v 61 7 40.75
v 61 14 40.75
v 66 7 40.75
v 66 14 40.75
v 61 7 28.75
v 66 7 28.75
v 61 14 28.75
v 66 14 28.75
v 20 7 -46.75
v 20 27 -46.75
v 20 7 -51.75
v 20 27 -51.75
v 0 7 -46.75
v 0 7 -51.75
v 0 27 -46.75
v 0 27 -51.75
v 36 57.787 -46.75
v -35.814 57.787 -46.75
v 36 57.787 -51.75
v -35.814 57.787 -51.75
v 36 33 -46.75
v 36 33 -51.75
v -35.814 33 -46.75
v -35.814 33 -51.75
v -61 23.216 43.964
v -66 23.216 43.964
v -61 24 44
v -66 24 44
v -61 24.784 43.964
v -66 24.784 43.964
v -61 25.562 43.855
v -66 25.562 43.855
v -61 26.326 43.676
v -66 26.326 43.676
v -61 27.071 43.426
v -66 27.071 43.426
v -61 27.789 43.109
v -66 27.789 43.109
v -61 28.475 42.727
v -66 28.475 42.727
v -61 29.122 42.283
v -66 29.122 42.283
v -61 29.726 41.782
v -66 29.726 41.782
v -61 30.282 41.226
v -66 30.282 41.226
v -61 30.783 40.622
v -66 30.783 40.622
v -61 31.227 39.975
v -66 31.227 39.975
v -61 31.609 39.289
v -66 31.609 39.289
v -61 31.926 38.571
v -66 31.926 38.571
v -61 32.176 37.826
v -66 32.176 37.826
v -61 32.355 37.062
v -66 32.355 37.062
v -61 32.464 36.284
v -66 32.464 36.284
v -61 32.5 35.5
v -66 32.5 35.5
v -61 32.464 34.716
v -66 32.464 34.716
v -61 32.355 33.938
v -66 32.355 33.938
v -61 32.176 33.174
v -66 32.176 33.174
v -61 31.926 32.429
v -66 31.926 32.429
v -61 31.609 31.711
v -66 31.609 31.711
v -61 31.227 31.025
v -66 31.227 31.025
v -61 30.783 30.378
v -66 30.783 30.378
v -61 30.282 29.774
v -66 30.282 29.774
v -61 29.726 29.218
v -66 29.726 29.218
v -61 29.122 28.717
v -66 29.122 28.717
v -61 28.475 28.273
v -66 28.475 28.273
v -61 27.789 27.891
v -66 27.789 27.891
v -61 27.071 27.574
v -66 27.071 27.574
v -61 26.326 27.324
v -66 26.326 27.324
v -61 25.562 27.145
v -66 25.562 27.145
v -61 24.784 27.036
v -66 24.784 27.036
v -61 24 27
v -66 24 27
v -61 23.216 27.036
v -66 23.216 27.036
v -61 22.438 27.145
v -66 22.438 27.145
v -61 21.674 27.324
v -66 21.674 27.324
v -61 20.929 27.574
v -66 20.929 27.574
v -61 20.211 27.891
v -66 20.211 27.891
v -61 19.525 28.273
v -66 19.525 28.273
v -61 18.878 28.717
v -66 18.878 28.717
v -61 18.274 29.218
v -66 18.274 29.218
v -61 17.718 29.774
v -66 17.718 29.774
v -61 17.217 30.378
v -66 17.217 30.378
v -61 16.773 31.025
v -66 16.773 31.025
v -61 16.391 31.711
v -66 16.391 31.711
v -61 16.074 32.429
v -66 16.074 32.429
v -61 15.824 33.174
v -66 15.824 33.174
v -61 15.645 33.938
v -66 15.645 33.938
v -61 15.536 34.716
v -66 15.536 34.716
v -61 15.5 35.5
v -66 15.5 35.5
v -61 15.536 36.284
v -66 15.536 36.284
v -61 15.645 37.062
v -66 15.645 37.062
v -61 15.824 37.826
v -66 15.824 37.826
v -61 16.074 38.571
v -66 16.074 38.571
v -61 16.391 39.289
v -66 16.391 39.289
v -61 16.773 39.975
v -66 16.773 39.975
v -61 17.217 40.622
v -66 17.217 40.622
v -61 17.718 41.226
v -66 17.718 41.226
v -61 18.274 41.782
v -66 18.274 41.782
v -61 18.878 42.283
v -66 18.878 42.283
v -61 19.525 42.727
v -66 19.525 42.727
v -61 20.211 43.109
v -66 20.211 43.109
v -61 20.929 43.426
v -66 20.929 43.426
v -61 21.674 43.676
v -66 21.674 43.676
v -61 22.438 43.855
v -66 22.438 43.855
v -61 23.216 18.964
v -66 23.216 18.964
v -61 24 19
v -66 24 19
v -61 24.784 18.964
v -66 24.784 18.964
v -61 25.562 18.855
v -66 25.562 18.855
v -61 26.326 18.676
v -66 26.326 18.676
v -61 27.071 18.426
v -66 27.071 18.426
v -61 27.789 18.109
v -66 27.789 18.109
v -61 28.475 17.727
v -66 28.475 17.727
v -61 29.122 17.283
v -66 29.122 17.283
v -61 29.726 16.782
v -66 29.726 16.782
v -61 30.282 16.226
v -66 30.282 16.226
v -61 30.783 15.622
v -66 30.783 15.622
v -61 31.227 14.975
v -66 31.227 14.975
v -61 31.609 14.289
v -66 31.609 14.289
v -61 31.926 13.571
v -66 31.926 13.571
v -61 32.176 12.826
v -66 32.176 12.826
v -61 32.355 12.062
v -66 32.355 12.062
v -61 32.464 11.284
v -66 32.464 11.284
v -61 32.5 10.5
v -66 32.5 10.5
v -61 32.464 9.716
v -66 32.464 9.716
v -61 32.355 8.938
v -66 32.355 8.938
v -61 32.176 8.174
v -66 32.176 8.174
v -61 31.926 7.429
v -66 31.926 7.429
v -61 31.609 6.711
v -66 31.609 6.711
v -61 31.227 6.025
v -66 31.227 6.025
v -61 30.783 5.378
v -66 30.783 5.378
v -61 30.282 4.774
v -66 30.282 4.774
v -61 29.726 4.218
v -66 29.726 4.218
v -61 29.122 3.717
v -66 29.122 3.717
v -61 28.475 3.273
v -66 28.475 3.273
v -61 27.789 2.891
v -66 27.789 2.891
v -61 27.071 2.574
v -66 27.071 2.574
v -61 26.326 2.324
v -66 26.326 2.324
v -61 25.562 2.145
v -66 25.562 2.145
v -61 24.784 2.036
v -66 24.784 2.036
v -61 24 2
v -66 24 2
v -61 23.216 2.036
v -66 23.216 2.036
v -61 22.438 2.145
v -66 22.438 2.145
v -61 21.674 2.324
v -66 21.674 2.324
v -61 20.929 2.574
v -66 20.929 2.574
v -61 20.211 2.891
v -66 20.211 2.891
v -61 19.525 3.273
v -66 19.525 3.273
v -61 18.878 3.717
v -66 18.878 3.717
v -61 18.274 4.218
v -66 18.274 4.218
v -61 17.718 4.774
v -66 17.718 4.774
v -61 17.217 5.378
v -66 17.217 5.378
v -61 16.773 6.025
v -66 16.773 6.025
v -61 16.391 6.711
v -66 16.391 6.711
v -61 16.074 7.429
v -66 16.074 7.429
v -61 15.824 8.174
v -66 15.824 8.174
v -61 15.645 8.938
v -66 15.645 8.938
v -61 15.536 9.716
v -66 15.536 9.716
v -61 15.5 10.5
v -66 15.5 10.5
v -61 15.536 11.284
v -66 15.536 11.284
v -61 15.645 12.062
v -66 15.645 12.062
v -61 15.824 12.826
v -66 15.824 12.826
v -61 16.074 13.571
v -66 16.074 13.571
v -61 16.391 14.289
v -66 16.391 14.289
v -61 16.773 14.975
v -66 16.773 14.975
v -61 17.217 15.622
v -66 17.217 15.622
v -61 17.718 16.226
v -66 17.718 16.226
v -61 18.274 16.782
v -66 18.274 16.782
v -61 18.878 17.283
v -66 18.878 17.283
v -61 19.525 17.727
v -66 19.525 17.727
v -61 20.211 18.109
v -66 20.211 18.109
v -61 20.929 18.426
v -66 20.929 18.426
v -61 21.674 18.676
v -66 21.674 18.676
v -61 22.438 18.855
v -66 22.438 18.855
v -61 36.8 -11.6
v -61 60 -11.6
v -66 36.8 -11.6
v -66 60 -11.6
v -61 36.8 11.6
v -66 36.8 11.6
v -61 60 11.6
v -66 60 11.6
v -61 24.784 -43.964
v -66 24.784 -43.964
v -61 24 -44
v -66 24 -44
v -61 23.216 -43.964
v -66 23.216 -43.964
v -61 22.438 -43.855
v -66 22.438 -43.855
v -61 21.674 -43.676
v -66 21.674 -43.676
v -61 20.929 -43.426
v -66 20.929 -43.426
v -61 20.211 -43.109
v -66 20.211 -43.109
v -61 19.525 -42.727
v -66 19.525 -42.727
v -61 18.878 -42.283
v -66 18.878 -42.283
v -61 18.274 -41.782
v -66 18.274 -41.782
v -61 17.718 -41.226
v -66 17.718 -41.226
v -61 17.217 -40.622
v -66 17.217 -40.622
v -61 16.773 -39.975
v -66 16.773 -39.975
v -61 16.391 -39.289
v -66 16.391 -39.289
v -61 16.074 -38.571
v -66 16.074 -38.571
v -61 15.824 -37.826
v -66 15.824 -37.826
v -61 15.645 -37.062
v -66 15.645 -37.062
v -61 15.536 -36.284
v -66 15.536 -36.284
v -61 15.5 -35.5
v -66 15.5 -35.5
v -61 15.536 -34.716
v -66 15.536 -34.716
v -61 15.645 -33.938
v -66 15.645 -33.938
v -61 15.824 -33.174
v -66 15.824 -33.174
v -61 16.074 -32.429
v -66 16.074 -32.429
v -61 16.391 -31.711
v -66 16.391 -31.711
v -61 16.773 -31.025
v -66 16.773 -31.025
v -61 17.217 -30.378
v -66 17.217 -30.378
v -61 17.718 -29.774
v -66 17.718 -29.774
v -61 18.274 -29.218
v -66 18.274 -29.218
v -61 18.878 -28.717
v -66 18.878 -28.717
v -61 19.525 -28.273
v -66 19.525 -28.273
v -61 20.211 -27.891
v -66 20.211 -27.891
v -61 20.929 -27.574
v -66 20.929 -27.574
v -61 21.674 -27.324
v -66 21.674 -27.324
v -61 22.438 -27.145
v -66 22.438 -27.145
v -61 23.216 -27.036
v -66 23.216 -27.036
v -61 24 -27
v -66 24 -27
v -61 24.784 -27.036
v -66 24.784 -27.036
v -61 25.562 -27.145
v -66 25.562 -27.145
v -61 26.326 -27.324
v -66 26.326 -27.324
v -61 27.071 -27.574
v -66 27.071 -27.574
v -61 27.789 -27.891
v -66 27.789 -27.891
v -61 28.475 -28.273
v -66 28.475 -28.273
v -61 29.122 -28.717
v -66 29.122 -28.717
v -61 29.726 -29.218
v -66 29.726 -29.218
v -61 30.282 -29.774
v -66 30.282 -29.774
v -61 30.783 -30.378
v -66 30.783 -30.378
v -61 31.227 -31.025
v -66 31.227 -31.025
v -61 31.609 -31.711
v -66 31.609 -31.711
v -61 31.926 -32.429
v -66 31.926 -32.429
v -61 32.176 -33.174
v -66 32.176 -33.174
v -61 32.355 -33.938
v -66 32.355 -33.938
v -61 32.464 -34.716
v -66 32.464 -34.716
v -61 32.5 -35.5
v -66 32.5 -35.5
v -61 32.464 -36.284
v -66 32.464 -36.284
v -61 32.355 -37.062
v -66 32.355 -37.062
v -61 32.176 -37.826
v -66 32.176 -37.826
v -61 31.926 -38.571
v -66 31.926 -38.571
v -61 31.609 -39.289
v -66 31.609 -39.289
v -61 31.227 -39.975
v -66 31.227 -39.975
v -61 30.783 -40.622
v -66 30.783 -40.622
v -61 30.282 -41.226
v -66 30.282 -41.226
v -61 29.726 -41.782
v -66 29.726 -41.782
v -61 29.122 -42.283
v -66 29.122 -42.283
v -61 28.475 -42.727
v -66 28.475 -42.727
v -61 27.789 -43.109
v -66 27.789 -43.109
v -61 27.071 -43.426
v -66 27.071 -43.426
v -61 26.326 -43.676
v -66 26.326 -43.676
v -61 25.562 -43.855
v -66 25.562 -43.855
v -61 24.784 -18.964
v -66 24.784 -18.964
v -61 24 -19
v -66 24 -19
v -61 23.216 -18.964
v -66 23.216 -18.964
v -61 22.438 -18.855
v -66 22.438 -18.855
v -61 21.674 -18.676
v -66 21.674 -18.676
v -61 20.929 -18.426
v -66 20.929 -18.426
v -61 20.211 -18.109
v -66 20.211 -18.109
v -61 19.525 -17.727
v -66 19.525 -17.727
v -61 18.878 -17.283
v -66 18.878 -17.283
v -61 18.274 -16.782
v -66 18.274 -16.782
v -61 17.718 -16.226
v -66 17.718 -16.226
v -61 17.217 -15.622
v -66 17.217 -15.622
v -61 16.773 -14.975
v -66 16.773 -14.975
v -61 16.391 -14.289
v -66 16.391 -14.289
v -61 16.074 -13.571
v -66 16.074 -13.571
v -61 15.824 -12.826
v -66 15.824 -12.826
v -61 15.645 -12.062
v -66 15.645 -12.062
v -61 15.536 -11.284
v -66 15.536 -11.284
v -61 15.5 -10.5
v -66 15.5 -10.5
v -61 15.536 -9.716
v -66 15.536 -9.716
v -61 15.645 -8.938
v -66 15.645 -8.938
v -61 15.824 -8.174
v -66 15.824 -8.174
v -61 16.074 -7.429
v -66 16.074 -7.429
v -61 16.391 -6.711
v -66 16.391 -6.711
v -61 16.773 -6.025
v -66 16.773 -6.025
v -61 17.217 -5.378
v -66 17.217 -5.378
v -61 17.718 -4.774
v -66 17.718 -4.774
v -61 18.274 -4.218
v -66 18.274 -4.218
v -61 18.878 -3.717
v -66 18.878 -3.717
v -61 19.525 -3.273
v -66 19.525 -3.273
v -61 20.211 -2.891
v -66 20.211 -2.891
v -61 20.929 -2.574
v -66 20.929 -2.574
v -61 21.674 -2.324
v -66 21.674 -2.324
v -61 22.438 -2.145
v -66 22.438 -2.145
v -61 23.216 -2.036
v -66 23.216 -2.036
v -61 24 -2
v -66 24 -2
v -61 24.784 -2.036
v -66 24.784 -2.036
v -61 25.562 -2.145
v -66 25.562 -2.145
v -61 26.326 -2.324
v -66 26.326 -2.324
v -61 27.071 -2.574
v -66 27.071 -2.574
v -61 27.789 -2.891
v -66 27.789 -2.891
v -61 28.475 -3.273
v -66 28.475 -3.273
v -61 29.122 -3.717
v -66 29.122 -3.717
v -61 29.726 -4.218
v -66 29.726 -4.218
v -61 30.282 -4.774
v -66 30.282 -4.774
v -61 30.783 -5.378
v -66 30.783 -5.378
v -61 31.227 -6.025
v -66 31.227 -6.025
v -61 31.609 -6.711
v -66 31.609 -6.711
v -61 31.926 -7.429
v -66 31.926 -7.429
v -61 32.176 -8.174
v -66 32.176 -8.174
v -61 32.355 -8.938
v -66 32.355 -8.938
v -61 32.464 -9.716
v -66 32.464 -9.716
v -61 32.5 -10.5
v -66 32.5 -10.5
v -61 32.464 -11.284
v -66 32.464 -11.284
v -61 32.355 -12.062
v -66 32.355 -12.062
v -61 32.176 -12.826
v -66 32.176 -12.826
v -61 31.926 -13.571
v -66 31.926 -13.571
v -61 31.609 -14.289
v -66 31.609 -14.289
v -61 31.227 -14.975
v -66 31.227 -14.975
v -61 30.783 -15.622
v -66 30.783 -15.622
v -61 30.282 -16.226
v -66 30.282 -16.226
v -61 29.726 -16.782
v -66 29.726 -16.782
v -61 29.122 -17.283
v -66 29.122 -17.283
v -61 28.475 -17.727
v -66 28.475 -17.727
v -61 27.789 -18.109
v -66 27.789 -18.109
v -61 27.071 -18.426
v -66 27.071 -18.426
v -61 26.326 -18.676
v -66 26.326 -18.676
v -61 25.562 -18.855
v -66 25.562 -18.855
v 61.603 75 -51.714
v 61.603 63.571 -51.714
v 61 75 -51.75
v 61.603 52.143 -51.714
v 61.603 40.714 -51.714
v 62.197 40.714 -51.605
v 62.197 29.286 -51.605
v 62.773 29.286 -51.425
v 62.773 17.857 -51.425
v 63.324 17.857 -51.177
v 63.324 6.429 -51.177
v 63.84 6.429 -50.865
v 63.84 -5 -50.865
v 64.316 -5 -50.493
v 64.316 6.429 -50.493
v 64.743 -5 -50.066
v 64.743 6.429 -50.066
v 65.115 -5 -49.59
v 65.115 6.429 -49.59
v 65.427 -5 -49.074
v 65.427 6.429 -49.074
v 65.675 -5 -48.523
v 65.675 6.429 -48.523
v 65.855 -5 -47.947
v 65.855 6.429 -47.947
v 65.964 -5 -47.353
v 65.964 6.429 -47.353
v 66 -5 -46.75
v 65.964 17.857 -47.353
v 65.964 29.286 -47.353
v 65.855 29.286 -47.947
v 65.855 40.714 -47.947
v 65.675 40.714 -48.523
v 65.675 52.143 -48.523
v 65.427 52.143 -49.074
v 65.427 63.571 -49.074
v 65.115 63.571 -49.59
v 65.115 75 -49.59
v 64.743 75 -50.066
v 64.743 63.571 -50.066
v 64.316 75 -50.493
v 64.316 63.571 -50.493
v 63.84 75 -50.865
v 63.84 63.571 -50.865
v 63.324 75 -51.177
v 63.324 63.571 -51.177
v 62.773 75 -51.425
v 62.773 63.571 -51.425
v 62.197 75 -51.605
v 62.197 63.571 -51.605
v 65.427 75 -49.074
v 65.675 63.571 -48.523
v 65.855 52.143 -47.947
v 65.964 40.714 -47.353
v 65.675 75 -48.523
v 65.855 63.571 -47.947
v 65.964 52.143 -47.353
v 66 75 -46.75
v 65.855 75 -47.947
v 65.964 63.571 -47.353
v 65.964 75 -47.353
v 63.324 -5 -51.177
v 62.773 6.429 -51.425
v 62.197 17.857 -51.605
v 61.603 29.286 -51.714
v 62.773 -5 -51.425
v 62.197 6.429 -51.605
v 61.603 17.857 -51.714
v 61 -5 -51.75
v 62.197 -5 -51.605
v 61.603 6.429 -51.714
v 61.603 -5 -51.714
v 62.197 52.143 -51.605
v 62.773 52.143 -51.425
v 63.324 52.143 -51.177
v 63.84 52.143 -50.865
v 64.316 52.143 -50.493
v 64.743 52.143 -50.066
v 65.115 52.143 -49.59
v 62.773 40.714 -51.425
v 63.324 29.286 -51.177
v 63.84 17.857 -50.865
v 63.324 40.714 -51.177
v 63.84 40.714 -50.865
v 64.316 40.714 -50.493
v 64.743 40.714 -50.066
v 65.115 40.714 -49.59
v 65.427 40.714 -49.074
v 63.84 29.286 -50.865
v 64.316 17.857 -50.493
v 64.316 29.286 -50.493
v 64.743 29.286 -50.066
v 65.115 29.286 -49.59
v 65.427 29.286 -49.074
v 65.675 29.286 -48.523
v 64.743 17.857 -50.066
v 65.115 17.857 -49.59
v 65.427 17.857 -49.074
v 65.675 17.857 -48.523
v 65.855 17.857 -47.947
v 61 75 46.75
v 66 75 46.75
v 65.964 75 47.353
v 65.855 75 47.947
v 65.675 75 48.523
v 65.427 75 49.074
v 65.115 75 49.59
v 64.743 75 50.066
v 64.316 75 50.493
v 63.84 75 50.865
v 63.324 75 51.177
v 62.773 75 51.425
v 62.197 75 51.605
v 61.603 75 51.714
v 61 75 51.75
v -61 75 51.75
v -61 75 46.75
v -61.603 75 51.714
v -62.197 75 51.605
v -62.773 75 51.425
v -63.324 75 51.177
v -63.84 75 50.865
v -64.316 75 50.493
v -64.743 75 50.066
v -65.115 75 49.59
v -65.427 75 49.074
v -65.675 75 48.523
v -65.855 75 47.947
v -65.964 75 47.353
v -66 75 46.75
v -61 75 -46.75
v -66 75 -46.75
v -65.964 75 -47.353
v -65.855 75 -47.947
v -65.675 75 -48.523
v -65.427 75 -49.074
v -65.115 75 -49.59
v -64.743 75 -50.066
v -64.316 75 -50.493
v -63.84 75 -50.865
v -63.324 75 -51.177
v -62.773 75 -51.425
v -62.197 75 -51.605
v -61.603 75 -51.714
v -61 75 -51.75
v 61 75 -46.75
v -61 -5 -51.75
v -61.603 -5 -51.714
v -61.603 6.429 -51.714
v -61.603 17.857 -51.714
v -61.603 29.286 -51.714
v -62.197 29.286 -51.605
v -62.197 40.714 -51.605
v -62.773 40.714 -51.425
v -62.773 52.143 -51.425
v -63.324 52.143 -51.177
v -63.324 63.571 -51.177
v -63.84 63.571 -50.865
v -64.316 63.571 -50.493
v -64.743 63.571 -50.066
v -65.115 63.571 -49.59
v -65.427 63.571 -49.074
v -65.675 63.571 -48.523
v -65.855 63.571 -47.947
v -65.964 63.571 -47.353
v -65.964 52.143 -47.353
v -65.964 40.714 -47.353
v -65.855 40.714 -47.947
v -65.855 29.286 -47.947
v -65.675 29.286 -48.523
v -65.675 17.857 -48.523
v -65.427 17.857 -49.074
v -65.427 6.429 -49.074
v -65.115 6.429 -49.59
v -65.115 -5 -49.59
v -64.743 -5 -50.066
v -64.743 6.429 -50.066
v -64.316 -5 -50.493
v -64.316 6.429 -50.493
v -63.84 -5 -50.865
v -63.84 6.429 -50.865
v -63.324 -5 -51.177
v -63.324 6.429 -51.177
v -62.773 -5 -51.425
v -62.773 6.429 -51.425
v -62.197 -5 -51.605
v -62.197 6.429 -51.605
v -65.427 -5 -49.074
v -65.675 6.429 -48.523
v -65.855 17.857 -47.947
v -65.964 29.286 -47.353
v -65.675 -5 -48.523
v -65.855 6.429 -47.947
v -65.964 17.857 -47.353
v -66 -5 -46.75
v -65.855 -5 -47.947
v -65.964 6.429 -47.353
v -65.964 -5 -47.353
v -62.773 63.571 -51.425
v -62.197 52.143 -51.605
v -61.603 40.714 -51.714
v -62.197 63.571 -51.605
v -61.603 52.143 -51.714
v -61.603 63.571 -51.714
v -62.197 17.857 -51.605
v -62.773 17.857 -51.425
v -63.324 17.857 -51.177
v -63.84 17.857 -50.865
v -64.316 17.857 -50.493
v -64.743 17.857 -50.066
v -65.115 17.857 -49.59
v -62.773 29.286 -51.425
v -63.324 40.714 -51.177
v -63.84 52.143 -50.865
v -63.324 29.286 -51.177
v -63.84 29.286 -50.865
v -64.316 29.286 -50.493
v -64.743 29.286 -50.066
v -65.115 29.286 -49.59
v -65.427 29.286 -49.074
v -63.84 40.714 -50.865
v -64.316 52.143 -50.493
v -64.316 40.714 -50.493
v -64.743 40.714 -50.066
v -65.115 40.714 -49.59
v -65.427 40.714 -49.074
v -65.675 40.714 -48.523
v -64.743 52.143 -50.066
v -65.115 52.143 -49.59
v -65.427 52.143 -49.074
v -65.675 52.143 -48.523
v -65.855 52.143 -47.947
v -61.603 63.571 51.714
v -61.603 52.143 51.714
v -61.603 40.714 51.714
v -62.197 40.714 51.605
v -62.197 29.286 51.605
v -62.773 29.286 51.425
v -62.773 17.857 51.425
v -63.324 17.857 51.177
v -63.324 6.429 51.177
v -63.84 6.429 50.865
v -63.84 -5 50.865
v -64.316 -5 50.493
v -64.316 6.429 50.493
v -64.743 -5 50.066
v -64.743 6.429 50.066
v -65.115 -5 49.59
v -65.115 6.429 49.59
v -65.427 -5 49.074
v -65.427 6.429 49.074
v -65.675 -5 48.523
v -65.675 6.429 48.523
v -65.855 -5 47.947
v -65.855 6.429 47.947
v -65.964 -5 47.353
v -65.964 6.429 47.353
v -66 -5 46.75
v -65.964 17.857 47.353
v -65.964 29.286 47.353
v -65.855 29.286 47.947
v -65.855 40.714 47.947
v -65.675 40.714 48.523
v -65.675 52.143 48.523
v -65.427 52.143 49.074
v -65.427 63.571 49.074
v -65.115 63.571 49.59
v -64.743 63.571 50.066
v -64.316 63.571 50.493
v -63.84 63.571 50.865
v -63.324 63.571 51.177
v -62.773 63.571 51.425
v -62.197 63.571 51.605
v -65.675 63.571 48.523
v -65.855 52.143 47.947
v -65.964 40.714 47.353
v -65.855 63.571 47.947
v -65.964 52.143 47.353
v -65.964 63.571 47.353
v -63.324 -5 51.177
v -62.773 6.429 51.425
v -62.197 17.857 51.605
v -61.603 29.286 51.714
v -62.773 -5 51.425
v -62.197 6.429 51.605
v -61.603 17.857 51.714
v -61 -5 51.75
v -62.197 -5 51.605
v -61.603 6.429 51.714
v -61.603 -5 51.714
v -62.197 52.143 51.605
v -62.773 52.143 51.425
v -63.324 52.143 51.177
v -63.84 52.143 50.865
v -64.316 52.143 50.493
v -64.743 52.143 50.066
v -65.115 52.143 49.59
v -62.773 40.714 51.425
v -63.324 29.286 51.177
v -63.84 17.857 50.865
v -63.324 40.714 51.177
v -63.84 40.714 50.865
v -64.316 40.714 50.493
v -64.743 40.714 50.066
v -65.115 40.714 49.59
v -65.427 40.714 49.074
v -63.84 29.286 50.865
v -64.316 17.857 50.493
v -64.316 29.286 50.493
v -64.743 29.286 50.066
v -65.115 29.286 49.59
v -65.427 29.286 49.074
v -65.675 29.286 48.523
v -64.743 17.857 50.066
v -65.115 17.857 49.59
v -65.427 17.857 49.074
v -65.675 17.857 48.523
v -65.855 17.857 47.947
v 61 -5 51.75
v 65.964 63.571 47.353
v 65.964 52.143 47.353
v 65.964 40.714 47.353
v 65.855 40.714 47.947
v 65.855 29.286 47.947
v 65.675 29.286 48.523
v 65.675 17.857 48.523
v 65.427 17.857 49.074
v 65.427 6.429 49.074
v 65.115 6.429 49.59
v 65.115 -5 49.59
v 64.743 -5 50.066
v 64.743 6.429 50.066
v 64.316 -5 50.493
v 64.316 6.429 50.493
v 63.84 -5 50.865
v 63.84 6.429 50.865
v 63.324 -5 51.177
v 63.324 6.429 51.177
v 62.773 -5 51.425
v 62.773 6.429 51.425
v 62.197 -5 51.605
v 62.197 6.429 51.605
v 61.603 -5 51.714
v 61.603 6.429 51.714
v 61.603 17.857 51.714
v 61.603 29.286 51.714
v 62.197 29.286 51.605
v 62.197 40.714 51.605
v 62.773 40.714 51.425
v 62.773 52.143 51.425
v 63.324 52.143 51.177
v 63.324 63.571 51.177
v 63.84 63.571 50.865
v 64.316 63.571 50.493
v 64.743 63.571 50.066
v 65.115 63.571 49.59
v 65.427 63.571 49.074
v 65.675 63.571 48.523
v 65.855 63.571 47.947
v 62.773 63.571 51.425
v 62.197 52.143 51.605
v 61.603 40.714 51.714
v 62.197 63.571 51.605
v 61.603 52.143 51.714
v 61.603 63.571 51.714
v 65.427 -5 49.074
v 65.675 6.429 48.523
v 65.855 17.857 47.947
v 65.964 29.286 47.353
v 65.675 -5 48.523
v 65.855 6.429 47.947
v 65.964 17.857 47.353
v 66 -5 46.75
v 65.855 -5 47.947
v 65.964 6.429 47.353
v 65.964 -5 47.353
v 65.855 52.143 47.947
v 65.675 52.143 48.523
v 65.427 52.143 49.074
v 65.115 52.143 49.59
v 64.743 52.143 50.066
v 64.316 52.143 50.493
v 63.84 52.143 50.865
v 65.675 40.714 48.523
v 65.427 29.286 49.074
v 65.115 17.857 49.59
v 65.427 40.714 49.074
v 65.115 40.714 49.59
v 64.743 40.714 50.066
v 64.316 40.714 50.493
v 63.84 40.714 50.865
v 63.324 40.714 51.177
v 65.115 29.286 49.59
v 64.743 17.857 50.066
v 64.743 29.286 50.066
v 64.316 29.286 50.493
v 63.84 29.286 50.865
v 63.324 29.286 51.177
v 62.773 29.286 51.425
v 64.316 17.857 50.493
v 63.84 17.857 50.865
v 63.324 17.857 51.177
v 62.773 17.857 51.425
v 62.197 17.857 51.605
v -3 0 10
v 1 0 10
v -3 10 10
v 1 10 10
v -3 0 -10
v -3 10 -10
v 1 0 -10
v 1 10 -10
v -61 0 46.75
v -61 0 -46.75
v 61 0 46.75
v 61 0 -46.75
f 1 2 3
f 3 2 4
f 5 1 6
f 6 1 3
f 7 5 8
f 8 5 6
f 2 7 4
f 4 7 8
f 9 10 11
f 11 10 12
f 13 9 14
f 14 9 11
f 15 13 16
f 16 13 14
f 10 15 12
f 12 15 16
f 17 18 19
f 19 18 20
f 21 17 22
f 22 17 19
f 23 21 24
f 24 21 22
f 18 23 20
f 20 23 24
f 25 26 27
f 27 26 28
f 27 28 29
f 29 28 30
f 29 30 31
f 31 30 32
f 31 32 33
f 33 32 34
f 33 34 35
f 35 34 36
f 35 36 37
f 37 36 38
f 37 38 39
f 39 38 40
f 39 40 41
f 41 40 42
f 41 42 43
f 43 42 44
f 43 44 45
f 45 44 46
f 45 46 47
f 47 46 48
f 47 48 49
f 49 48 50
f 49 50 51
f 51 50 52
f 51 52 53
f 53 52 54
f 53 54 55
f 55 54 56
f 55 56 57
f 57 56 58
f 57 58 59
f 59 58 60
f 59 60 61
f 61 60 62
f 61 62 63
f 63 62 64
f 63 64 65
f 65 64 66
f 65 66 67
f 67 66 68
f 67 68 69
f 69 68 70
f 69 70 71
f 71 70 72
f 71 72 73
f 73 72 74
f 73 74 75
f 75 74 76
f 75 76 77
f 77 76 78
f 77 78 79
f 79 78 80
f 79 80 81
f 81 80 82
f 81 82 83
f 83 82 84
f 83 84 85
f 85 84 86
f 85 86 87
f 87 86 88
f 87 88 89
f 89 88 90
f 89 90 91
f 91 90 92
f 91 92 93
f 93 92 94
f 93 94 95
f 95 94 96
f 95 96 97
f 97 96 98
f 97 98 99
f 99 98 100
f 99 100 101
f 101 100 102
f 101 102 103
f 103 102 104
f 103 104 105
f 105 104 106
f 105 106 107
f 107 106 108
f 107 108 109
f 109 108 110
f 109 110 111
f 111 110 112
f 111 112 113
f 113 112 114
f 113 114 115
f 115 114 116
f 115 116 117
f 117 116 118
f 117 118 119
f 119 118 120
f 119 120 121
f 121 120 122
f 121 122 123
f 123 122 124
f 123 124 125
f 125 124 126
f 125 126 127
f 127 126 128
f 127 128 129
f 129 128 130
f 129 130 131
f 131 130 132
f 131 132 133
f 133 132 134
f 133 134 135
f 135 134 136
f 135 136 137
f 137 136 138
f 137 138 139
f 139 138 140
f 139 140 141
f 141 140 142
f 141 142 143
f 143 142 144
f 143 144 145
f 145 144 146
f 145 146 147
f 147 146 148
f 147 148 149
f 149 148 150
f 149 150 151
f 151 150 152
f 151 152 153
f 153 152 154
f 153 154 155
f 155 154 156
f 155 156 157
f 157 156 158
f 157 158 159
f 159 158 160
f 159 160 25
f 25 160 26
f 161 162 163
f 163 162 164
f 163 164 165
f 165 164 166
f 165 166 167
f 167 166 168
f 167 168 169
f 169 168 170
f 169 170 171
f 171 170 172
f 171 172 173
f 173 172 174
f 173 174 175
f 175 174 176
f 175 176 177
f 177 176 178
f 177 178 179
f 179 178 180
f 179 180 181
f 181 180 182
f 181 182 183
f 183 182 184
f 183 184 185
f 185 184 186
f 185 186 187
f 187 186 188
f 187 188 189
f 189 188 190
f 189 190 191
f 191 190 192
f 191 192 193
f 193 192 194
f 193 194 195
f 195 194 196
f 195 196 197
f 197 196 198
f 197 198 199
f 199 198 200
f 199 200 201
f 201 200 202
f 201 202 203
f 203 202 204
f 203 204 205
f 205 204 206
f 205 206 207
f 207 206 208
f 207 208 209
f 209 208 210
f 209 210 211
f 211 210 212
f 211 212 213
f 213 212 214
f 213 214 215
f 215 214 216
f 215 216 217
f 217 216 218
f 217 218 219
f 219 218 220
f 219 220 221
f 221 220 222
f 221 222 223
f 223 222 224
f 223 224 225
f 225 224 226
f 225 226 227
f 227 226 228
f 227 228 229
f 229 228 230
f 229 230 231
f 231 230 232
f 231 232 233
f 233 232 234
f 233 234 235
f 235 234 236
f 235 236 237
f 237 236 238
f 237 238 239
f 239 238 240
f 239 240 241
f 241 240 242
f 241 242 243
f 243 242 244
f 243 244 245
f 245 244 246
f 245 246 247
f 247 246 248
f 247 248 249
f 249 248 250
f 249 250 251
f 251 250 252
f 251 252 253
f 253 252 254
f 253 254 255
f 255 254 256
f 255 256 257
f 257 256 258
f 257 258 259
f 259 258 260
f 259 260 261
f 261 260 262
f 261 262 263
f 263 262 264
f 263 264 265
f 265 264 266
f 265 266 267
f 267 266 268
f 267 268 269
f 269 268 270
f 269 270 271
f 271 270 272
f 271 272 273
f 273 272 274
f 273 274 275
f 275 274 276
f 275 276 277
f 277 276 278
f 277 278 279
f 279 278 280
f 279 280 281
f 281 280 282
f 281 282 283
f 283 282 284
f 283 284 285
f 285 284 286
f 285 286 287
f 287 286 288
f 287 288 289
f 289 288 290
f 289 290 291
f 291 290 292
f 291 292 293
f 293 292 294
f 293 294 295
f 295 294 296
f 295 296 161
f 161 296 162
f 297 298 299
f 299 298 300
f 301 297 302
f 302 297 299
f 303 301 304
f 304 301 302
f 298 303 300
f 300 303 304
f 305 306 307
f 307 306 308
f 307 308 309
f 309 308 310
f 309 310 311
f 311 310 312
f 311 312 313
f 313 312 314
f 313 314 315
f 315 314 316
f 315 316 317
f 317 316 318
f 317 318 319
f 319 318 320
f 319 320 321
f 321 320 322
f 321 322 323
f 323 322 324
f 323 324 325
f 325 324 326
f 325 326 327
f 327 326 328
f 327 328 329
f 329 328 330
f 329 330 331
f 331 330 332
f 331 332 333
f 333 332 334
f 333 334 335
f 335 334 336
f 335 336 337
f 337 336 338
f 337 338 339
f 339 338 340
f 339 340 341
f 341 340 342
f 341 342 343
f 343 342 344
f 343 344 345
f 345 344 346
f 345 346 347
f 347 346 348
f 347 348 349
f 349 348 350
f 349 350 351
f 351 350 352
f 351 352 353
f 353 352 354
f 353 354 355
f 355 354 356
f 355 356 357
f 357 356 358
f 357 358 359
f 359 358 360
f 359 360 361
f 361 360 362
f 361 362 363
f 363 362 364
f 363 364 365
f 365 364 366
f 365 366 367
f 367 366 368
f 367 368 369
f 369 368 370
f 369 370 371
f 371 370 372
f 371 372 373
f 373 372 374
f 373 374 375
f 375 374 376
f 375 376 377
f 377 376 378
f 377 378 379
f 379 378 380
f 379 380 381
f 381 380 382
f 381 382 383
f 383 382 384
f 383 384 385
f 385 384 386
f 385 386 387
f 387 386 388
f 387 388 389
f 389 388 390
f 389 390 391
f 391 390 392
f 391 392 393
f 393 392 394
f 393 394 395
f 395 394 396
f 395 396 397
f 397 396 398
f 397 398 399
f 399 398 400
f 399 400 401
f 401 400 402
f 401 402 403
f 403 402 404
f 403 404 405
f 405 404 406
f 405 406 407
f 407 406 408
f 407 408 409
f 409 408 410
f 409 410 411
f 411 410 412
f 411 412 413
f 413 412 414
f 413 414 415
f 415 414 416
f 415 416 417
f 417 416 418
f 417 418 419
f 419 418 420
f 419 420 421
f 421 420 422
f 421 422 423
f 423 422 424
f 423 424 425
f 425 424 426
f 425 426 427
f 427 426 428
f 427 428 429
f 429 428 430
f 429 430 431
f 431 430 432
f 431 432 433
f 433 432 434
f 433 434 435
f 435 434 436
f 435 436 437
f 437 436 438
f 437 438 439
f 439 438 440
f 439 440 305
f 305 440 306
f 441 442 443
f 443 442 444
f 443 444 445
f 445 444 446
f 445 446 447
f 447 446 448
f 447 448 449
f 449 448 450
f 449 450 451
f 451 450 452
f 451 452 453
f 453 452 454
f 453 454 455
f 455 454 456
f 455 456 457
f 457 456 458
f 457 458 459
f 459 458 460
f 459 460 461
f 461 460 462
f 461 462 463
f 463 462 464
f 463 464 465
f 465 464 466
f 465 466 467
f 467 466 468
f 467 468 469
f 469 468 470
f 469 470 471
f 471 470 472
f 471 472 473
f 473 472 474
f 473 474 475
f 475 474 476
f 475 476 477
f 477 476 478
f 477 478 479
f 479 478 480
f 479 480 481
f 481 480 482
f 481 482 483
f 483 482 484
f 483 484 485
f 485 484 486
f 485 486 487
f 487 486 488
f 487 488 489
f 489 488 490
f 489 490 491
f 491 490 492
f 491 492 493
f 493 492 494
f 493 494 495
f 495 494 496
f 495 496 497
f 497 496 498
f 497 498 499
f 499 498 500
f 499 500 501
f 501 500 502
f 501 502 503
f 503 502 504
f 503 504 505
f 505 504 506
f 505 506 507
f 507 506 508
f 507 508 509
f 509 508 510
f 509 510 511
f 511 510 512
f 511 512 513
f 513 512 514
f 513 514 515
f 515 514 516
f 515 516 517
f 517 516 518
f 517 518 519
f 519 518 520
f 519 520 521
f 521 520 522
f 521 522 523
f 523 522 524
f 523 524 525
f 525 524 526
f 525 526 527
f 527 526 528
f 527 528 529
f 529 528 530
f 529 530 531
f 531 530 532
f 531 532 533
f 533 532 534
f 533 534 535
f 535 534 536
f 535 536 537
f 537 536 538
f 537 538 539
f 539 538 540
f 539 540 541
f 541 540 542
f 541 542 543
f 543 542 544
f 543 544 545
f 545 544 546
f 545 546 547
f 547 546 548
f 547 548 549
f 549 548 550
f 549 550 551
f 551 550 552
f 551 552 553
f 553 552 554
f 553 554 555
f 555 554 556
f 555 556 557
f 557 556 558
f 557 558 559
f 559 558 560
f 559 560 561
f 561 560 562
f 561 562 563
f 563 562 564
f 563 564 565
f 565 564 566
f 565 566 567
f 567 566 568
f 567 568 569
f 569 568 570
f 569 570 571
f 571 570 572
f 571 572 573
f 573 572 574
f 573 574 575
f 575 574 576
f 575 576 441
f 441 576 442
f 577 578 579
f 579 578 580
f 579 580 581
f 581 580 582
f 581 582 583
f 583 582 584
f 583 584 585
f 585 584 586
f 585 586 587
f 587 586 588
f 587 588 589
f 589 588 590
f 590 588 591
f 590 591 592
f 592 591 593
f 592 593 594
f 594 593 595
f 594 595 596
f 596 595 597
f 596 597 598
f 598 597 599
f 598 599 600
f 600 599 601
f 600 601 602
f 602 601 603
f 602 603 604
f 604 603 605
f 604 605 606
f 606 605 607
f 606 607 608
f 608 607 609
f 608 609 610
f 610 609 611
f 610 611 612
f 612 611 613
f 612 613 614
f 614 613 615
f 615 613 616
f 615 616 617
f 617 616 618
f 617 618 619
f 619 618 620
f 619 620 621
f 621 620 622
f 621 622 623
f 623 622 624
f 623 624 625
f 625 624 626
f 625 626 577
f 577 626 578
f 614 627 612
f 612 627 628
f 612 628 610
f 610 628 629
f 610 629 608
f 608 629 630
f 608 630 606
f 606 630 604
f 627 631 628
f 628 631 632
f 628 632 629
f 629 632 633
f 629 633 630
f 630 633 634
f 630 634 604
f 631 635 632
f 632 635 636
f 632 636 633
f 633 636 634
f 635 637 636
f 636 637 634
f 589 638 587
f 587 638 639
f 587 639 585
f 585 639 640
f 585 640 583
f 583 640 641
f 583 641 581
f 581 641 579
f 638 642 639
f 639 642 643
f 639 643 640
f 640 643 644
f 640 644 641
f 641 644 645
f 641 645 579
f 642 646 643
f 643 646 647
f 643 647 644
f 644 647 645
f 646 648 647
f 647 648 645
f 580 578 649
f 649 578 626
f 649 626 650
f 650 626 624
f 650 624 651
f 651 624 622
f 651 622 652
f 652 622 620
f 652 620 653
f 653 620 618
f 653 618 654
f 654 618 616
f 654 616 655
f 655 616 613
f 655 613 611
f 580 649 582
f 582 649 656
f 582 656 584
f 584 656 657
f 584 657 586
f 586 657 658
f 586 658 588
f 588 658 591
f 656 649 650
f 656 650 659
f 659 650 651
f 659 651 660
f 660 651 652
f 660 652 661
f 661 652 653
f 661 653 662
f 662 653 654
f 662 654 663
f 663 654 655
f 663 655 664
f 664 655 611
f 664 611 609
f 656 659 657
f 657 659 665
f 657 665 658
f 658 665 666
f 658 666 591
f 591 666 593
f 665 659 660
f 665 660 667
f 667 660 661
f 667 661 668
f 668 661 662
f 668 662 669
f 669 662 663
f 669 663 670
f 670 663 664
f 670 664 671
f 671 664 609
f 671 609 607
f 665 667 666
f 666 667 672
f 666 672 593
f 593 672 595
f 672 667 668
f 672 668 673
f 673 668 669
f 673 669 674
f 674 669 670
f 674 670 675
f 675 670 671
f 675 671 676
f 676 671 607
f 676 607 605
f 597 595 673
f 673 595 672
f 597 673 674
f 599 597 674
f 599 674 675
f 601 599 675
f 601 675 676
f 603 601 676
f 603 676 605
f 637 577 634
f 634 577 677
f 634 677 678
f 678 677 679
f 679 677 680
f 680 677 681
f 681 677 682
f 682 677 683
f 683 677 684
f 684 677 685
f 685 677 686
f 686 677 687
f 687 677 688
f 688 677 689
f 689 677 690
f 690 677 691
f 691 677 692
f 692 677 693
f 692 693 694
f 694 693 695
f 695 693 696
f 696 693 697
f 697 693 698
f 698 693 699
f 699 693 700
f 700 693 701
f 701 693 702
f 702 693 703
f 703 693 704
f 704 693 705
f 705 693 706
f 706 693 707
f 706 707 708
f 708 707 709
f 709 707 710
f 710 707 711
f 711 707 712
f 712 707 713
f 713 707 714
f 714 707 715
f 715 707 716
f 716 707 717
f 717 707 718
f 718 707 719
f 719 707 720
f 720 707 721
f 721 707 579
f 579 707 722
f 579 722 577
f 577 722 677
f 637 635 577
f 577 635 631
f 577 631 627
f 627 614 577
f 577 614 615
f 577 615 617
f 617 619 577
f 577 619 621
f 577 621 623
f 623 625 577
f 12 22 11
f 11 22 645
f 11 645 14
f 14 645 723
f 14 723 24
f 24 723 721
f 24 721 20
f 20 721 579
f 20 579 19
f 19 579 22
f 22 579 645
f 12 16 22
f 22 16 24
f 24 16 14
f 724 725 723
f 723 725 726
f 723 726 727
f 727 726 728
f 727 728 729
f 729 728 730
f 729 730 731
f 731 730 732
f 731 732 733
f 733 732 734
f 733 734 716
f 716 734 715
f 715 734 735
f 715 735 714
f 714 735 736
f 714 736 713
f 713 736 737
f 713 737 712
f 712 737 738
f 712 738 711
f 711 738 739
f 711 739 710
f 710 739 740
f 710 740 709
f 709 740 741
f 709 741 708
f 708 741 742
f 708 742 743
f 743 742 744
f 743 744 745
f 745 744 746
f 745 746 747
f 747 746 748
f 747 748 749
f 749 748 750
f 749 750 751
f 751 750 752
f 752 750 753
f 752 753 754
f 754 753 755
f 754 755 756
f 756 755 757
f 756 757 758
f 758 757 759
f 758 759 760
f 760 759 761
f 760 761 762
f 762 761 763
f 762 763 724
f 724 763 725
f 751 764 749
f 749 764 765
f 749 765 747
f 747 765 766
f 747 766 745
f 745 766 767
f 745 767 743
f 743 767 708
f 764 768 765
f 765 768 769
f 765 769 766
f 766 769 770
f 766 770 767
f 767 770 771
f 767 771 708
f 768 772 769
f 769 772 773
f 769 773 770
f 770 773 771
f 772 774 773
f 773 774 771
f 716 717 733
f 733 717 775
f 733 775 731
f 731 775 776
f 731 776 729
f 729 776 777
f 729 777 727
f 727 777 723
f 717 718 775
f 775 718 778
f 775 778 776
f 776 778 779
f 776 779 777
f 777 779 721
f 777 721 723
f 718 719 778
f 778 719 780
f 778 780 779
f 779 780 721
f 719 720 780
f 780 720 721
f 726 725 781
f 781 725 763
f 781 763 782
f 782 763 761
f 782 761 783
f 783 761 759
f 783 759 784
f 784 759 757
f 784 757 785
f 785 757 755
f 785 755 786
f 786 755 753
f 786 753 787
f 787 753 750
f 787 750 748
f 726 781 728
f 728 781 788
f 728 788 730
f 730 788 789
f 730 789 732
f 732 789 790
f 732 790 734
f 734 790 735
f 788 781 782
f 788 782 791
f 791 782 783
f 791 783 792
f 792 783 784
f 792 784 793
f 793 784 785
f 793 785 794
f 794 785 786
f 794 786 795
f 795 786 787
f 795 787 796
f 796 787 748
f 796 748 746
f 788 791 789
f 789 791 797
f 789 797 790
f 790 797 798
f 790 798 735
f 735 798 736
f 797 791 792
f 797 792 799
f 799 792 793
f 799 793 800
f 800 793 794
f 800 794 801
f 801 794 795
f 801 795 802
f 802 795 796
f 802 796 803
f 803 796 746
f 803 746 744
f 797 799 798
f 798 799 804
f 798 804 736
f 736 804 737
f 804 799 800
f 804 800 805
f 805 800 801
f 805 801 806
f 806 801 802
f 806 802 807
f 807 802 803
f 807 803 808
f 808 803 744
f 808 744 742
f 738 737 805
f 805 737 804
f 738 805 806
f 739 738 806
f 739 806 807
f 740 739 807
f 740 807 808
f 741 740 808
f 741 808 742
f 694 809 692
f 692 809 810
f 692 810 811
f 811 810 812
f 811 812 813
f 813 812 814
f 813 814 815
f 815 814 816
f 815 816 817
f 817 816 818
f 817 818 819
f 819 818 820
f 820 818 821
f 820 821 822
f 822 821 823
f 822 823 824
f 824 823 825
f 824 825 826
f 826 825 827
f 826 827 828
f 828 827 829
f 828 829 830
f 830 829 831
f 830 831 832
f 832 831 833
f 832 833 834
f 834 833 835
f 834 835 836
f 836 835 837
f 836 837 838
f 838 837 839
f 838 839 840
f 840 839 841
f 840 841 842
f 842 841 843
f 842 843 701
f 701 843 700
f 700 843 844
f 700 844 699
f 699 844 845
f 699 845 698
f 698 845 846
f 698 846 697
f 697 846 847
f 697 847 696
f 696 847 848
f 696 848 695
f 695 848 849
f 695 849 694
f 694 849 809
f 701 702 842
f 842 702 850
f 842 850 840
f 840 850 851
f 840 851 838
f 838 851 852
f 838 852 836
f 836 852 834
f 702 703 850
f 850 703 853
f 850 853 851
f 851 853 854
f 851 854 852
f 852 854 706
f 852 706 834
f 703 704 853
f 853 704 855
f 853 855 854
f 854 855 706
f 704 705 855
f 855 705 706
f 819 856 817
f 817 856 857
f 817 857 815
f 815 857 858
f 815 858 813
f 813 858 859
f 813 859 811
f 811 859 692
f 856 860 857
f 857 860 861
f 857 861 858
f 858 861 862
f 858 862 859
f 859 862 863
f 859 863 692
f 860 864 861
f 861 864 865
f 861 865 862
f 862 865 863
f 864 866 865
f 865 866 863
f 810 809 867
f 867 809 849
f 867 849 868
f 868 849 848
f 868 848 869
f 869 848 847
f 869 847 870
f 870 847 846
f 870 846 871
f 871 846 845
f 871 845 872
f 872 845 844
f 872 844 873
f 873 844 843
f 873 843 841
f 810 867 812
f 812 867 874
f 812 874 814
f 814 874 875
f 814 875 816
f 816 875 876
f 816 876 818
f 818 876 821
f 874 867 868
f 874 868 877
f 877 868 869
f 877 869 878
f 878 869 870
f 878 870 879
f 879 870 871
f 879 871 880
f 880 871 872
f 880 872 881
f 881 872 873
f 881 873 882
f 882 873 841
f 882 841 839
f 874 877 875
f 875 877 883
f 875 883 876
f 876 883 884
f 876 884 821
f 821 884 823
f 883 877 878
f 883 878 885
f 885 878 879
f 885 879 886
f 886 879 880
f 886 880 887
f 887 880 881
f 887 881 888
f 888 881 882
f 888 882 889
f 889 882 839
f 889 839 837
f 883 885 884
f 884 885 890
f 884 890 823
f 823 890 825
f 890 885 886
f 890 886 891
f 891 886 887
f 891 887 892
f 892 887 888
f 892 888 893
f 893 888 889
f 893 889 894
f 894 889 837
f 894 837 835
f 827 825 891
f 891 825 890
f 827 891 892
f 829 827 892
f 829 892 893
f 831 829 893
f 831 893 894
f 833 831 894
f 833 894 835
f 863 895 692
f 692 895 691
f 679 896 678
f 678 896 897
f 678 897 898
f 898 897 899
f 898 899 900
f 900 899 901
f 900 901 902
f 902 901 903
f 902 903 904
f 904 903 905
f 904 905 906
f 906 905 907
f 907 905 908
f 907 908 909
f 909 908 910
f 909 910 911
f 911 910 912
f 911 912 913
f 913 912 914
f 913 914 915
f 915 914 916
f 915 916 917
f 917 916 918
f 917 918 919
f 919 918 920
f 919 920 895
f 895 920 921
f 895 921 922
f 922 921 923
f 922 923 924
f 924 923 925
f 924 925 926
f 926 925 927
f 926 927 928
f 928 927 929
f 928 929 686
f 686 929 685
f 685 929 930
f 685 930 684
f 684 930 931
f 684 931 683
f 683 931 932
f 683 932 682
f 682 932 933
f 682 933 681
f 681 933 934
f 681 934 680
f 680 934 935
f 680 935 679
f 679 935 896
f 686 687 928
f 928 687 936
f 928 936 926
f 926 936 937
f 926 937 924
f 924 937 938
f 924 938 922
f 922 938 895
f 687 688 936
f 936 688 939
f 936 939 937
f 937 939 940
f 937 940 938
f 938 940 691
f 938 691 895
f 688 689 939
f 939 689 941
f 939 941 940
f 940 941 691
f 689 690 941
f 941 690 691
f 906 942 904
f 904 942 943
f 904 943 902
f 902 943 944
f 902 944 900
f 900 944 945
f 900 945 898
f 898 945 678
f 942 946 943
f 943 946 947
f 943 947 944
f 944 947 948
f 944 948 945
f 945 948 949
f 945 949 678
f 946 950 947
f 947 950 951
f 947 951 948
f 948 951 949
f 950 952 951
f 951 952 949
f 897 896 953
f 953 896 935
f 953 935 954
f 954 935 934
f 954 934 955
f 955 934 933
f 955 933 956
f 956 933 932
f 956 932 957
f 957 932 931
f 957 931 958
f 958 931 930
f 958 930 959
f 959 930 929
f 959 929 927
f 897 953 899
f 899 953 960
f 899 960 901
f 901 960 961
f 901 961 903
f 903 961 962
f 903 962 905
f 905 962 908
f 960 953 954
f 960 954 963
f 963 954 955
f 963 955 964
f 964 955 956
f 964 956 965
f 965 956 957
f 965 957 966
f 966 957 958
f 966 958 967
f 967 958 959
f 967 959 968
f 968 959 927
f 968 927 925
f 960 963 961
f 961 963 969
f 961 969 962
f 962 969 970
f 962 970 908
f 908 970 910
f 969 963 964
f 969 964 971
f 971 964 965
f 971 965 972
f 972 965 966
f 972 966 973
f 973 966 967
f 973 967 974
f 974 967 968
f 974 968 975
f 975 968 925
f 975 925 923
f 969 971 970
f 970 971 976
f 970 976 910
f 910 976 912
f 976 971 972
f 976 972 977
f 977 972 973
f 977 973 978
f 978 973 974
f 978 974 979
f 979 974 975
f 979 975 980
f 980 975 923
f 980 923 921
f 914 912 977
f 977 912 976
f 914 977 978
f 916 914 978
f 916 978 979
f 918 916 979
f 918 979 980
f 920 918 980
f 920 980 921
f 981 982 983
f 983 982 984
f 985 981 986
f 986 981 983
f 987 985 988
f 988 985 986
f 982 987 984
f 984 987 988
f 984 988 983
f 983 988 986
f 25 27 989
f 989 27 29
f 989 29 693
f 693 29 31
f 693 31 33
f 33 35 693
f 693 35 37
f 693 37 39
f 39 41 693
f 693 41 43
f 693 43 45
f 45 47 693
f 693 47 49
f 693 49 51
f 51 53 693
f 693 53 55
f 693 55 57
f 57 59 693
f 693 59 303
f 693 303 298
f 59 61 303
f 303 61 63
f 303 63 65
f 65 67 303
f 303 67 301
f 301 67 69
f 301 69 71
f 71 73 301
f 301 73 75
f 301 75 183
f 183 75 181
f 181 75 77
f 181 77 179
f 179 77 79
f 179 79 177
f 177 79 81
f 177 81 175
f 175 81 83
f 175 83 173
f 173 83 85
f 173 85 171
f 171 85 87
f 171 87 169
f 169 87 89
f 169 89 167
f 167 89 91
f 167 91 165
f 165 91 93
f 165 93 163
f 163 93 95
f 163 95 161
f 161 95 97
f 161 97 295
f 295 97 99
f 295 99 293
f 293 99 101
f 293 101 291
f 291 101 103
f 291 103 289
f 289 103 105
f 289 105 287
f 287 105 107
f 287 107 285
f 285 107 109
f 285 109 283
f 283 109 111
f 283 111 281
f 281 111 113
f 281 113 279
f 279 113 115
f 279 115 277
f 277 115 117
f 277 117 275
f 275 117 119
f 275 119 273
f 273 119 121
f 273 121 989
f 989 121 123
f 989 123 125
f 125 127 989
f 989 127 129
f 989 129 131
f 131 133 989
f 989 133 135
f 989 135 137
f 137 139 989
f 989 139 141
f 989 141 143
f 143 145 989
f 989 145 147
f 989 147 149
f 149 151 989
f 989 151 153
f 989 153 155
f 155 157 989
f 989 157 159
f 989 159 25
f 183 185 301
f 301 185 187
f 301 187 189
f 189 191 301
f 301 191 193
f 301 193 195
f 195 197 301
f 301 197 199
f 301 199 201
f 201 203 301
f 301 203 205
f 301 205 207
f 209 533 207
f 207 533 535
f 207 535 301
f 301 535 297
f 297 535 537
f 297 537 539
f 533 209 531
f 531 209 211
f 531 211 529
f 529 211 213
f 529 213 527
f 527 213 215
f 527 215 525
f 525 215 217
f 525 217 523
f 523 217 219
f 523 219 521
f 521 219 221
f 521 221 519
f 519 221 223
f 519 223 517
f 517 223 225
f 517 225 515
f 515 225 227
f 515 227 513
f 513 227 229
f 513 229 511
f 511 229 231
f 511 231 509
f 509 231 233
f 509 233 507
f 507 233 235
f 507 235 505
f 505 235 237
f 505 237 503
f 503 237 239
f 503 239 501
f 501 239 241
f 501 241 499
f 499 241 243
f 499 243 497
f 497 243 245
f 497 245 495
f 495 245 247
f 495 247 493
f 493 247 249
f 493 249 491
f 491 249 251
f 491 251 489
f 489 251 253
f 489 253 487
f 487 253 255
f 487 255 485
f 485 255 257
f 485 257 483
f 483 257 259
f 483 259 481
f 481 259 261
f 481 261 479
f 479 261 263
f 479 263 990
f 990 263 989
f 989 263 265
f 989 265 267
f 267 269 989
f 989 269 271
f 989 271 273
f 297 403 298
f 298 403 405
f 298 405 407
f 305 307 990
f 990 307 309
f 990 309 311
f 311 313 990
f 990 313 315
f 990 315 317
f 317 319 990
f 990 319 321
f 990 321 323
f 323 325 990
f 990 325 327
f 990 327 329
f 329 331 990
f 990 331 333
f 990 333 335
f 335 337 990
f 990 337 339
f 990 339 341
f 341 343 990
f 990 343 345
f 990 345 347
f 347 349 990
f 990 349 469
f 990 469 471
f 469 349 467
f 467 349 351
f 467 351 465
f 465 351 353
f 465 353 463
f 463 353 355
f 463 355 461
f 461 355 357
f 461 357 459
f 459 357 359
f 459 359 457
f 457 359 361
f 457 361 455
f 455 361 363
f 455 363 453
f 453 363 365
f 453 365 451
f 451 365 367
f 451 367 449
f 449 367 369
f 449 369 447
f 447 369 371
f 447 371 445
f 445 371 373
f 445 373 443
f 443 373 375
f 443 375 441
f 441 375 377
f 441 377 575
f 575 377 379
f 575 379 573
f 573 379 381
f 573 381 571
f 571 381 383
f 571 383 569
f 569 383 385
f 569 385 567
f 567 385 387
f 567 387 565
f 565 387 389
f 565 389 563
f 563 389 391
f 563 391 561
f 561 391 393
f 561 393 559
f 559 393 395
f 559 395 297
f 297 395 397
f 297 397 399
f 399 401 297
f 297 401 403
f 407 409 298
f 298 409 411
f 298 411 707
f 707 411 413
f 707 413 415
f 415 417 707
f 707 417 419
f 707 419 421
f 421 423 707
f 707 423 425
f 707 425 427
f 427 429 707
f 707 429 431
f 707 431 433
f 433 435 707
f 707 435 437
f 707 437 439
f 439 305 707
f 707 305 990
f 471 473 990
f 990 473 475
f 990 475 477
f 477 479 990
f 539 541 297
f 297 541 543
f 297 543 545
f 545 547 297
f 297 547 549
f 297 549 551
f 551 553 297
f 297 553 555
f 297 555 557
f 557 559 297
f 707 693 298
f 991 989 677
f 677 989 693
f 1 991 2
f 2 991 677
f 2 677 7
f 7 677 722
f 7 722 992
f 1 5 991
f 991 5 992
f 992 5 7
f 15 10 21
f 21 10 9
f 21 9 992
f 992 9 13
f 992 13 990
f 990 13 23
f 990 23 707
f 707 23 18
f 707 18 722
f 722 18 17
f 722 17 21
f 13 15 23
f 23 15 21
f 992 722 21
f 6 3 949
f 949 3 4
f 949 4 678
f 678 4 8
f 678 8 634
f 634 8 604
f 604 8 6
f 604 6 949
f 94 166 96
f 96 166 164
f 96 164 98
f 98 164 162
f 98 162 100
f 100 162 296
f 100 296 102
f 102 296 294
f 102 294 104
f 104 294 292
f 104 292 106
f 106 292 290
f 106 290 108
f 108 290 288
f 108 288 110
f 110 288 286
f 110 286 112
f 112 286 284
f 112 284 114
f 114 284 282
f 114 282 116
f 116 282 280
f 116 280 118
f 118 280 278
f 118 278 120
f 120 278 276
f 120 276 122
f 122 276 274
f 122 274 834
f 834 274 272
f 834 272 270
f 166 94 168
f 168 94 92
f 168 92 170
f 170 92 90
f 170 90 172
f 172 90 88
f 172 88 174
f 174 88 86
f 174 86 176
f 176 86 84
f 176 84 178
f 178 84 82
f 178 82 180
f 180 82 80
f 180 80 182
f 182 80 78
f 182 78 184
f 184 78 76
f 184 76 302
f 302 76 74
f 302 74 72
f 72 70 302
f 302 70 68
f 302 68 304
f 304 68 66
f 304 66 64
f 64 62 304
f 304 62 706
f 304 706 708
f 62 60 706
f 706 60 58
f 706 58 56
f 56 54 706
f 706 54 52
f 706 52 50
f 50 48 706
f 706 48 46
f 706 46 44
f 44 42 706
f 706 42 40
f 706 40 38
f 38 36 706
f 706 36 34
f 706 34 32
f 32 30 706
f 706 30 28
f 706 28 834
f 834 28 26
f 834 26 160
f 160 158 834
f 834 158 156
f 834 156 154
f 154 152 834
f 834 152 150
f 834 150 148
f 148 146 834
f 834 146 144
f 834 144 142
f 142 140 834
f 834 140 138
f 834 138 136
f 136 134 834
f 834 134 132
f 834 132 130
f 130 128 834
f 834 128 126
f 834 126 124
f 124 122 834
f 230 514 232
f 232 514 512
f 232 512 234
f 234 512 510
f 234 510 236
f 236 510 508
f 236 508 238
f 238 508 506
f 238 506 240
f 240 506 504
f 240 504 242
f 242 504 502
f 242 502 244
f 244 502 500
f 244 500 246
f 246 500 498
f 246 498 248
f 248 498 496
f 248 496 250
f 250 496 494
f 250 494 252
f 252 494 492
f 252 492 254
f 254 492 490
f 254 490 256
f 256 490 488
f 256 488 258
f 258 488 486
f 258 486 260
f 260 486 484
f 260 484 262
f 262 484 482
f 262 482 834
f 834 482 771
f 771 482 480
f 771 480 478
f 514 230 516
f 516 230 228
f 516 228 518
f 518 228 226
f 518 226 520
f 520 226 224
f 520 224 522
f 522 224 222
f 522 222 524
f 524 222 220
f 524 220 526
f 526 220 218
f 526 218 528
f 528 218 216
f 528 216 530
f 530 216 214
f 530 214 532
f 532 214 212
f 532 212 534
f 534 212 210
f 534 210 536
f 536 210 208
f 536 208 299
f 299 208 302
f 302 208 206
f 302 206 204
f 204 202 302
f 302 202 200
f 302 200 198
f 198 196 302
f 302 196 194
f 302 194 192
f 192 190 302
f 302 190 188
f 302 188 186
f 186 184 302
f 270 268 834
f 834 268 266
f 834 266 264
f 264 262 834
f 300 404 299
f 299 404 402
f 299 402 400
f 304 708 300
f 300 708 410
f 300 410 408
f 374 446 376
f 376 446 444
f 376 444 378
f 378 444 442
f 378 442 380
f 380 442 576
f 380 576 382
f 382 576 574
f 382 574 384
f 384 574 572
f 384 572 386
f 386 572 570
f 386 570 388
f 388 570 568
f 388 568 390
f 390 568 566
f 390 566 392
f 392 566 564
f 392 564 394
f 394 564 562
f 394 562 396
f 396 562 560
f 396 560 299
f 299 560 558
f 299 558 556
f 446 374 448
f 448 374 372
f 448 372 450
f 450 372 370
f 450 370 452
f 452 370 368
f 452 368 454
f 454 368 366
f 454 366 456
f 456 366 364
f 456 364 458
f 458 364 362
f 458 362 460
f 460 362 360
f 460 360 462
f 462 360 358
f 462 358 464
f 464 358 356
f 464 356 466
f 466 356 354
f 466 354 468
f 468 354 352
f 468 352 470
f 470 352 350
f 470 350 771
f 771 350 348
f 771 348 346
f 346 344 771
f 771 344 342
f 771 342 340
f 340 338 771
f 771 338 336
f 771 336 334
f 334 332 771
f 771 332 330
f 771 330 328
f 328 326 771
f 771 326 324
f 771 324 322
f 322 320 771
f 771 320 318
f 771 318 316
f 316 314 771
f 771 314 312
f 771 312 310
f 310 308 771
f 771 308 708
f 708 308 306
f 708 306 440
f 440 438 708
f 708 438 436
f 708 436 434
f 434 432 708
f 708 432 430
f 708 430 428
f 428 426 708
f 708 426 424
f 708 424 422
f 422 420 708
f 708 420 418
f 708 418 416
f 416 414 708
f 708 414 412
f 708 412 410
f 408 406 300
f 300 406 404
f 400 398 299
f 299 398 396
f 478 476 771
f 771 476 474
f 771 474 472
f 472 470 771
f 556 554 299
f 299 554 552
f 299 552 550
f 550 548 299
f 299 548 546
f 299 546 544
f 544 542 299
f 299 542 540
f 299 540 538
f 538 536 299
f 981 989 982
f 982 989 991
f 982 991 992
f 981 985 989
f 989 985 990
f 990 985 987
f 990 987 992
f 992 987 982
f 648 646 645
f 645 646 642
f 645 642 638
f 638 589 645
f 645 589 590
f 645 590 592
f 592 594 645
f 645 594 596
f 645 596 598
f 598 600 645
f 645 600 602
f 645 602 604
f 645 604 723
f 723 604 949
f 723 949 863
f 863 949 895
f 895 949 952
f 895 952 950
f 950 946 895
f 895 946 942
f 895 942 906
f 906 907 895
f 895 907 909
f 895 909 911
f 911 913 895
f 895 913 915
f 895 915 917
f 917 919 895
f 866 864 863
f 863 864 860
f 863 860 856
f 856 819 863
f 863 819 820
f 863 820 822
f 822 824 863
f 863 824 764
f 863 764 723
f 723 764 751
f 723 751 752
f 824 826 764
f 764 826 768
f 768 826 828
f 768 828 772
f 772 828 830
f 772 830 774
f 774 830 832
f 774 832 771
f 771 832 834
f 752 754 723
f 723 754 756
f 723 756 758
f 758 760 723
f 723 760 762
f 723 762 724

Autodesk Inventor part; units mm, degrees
ref_plane "YZ Plane" through (0, 0, 0) normal (1, 0, 0) x (0, 1, 0)
ref_plane "XZ Plane" through (0, 0, 0) normal (0, 1, 0) x (-1, 0, 0)
ref_plane "XY Plane" through (0, 0, 0) normal (0, 0, 1) x (1, 0, 0)
sketch "Sketch1" plane through (0, 0, 0) normal (0, 1, 0) x (-1, 0, 0)
  line L0 (61, 46.75) -> (-61, 46.75)
  line L1 (-61, 46.75) -> (-61, -46.75)
  line L2 (-61, -46.75) -> (61, -46.75)
  line L3 (61, -46.75) -> (61, 46.75)
  line L4 (-61, 46.75) -> (61, -46.75) construction
  line L5 (66, 51.75) -> (-66, 51.75)
  line L6 (-66, 51.75) -> (-66, -51.75)
  line L7 (-66, -51.75) -> (66, -51.75)
  line L8 (66, -51.75) -> (66, 51.75)
  line L9 (0, -51.75) -> (0, -46.75) construction
  line L10 (66, 0) -> (61, 0) construction
  line L11 (58, 45.75) -> (1, 45.75) construction
  line L12 (1, 45.75) -> (1, -43.25) construction
  line L13 (1, -43.25) -> (58, -43.25) construction
  line L14 (58, -43.25) -> (58, 45.75) construction
  line L15 (-4, 35.25) -> (-60, 35.25) construction
  line L16 (-60, 35.25) -> (-60, -45.75) construction
  line L17 (-60, -45.75) -> (-4, -45.75) construction
  line L18 (-4, -45.75) -> (-4, 35.25) construction
  line L19 (3, 10) -> (-1, 10)
  line L20 (-1, 10) -> (-1, -10)
  line L21 (-1, -10) -> (3, -10)
  line L22 (3, -10) -> (3, 10)
  line L23 (1, -43.25) -> (-4, -43.25) construction
  line L24 (0, 0) -> (3, 0) construction
  dimension "d2" = 5
  dimension "d7" = 57
  dimension "d8" = 89
  dimension "d9" = 3.5
  dimension "d10" = 1
  dimension "d11" = 56
  dimension "d12" = 5
  dimension "d13" = 3
  dimension "d14" = 1
  dimension "d15" = 81
  dimension "d16" = 1
  dimension "d17" = 4
  dimension "d18" = 20
  dimension "d37" = 60
extrude "Extrusion1" add sketch "Sketch1" against normal blind 5 contours L3 L2 L1 L0 | L8 L7 L6 L5 | L22 L21 L20 L19
extrude "Extrusion2" add sketch "Sketch1" along normal blind 75 contours L8 L7 L6 L5
extrude "Extrusion3" add sketch "Sketch1" along normal blind 10 contours L22 L21 L20 L19
fillet "Fillet1" radius 5 4 edges at (66, 35, 51.75) (-66, 35, 51.75) (-66, 35, -51.75) (66, 35, -51.75)
sketch "Sketch2" plane through (-66, -5, -46.75) normal (-1, 0, 0) x (0, 0, 1)
  circle A0 centre (10.9794, 28.8313) radius 8.5 construction
  circle A1 centre (35.9794, 28.8313) radius 8.5 construction
  circle A2 centre (11.25, 29) radius 8.5
  circle A3 centre (36.25, 29) radius 8.5
  line L0 (10.9794, 28.8313) -> (35.9794, 28.8313) construction
  line L1 (11.25, 29) -> (36.25, 29) construction
  line L2 (93.5, 0) -> (0, 0) projected
  point P0 (46.75, 5)
  point P1 (23.75, 29)
  point P2 (46.75, 0)
  dimension "d26" = 29
  dimension "d27" = 23
extrude "Extrusion4" cut sketch "Sketch2" against normal up to surface (5 mm away)
sketch "Sketch3" plane through (-66, -5, -46.75) normal (-1, 0, 0) x (0, 0, 1)
  line L0 (35.15, 65) -> (58.35, 65)
  line L1 (58.35, 65) -> (58.35, 41.8)
  line L2 (58.35, 41.8) -> (35.15, 41.8)
  line L3 (35.15, 41.8) -> (35.15, 65)
  line L4 (93.5, 0) -> (0, 0) projected
  line L5 (0, 80) -> (93.5, 80) projected
  point P0 (46.75, 5)
  point P1 (46.75, 0)
  point P2 (46.75, 41.8)
  dimension "d28" = 23.2
  dimension "d29" = 15
extrude "Extrusion5" cut sketch "Sketch3" against normal up to surface (5 mm away)
mirror "Mirror1" about plane through (0, 0, 0) normal (0, 0, 1) of "Extrusion4"
sketch "Sketch4" plane through (61, -5, -51.75) normal (0, 0, -1) x (-1, 0, 0)
  line L0 (25, 63) -> (97, 63)
  line L1 (97, 63) -> (97, 38)
  line L2 (97, 38) -> (25, 38)
  line L3 (25, 38) -> (25, 63)
  line L4 (0, 80) -> (122, 80) projected
  line L5 (24.8135, 37.7871) -> (96.8135, 37.7871) projected
  line L6 (96.8135, 37.7871) -> (96.8135, 62.7871) projected
  line L7 (96.8135, 62.7871) -> (24.8135, 62.7871) projected
  line L8 (24.8135, 62.7871) -> (24.8135, 37.7871) projected
  point P0 (61, 5)
  point P1 (61, 80)
  point P2 (61, 63)
  point P3 (25, 62.7871)
  point P4 (96.8135, 38)
  dimension "d32" = 72
  dimension "d33" = 25
  dimension "d34" = 17
extrude "Extrusion6" cut sketch "Sketch4" against normal up to surface (5 mm away) contours L7 L6 L2 L3
sketch "Sketch5" plane through (61, -5, -51.75) normal (0, 0, -1) x (-1, 0, 0)
  line L0 (41, 32) -> (61, 32)
  line L1 (61, 32) -> (61, 12)
  line L2 (61, 12) -> (41, 12)
  line L3 (41, 12) -> (41, 32)
  line L4 (0, 5) -> (0, 80) projected
  line L5 (122, 0) -> (0, 0) projected
  point P0 (61, 5)
  dimension "d38" = 20
  dimension "d39" = 41
  dimension "d40" = 12
extrude "Extrusion7" cut sketch "Sketch5" against normal up to surface (5 mm away)
sketch "Sketch6" plane through (66, -5, -46.75) normal (1, 0, 0) x (0, 0, -1)
  line L0 (-87.5, 19) -> (-75.5, 19)
  line L1 (-75.5, 19) -> (-75.5, 12)
  line L2 (-75.5, 12) -> (-87.5, 12)
  line L3 (-87.5, 12) -> (-87.5, 19)
  line L4 (0, 0) -> (-93.5, 0) projected
  line L5 (-93.5, 5) -> (-93.5, 80) projected
  point P0 (-46.75, 5)
  dimension "d43" = 12
  dimension "d44" = 7
  dimension "d45" = 12
  dimension "d46" = 6
extrude "Extrusion8" cut sketch "Sketch6" against normal up to surface (5 mm away)
properties part number "kucisteDonji"
